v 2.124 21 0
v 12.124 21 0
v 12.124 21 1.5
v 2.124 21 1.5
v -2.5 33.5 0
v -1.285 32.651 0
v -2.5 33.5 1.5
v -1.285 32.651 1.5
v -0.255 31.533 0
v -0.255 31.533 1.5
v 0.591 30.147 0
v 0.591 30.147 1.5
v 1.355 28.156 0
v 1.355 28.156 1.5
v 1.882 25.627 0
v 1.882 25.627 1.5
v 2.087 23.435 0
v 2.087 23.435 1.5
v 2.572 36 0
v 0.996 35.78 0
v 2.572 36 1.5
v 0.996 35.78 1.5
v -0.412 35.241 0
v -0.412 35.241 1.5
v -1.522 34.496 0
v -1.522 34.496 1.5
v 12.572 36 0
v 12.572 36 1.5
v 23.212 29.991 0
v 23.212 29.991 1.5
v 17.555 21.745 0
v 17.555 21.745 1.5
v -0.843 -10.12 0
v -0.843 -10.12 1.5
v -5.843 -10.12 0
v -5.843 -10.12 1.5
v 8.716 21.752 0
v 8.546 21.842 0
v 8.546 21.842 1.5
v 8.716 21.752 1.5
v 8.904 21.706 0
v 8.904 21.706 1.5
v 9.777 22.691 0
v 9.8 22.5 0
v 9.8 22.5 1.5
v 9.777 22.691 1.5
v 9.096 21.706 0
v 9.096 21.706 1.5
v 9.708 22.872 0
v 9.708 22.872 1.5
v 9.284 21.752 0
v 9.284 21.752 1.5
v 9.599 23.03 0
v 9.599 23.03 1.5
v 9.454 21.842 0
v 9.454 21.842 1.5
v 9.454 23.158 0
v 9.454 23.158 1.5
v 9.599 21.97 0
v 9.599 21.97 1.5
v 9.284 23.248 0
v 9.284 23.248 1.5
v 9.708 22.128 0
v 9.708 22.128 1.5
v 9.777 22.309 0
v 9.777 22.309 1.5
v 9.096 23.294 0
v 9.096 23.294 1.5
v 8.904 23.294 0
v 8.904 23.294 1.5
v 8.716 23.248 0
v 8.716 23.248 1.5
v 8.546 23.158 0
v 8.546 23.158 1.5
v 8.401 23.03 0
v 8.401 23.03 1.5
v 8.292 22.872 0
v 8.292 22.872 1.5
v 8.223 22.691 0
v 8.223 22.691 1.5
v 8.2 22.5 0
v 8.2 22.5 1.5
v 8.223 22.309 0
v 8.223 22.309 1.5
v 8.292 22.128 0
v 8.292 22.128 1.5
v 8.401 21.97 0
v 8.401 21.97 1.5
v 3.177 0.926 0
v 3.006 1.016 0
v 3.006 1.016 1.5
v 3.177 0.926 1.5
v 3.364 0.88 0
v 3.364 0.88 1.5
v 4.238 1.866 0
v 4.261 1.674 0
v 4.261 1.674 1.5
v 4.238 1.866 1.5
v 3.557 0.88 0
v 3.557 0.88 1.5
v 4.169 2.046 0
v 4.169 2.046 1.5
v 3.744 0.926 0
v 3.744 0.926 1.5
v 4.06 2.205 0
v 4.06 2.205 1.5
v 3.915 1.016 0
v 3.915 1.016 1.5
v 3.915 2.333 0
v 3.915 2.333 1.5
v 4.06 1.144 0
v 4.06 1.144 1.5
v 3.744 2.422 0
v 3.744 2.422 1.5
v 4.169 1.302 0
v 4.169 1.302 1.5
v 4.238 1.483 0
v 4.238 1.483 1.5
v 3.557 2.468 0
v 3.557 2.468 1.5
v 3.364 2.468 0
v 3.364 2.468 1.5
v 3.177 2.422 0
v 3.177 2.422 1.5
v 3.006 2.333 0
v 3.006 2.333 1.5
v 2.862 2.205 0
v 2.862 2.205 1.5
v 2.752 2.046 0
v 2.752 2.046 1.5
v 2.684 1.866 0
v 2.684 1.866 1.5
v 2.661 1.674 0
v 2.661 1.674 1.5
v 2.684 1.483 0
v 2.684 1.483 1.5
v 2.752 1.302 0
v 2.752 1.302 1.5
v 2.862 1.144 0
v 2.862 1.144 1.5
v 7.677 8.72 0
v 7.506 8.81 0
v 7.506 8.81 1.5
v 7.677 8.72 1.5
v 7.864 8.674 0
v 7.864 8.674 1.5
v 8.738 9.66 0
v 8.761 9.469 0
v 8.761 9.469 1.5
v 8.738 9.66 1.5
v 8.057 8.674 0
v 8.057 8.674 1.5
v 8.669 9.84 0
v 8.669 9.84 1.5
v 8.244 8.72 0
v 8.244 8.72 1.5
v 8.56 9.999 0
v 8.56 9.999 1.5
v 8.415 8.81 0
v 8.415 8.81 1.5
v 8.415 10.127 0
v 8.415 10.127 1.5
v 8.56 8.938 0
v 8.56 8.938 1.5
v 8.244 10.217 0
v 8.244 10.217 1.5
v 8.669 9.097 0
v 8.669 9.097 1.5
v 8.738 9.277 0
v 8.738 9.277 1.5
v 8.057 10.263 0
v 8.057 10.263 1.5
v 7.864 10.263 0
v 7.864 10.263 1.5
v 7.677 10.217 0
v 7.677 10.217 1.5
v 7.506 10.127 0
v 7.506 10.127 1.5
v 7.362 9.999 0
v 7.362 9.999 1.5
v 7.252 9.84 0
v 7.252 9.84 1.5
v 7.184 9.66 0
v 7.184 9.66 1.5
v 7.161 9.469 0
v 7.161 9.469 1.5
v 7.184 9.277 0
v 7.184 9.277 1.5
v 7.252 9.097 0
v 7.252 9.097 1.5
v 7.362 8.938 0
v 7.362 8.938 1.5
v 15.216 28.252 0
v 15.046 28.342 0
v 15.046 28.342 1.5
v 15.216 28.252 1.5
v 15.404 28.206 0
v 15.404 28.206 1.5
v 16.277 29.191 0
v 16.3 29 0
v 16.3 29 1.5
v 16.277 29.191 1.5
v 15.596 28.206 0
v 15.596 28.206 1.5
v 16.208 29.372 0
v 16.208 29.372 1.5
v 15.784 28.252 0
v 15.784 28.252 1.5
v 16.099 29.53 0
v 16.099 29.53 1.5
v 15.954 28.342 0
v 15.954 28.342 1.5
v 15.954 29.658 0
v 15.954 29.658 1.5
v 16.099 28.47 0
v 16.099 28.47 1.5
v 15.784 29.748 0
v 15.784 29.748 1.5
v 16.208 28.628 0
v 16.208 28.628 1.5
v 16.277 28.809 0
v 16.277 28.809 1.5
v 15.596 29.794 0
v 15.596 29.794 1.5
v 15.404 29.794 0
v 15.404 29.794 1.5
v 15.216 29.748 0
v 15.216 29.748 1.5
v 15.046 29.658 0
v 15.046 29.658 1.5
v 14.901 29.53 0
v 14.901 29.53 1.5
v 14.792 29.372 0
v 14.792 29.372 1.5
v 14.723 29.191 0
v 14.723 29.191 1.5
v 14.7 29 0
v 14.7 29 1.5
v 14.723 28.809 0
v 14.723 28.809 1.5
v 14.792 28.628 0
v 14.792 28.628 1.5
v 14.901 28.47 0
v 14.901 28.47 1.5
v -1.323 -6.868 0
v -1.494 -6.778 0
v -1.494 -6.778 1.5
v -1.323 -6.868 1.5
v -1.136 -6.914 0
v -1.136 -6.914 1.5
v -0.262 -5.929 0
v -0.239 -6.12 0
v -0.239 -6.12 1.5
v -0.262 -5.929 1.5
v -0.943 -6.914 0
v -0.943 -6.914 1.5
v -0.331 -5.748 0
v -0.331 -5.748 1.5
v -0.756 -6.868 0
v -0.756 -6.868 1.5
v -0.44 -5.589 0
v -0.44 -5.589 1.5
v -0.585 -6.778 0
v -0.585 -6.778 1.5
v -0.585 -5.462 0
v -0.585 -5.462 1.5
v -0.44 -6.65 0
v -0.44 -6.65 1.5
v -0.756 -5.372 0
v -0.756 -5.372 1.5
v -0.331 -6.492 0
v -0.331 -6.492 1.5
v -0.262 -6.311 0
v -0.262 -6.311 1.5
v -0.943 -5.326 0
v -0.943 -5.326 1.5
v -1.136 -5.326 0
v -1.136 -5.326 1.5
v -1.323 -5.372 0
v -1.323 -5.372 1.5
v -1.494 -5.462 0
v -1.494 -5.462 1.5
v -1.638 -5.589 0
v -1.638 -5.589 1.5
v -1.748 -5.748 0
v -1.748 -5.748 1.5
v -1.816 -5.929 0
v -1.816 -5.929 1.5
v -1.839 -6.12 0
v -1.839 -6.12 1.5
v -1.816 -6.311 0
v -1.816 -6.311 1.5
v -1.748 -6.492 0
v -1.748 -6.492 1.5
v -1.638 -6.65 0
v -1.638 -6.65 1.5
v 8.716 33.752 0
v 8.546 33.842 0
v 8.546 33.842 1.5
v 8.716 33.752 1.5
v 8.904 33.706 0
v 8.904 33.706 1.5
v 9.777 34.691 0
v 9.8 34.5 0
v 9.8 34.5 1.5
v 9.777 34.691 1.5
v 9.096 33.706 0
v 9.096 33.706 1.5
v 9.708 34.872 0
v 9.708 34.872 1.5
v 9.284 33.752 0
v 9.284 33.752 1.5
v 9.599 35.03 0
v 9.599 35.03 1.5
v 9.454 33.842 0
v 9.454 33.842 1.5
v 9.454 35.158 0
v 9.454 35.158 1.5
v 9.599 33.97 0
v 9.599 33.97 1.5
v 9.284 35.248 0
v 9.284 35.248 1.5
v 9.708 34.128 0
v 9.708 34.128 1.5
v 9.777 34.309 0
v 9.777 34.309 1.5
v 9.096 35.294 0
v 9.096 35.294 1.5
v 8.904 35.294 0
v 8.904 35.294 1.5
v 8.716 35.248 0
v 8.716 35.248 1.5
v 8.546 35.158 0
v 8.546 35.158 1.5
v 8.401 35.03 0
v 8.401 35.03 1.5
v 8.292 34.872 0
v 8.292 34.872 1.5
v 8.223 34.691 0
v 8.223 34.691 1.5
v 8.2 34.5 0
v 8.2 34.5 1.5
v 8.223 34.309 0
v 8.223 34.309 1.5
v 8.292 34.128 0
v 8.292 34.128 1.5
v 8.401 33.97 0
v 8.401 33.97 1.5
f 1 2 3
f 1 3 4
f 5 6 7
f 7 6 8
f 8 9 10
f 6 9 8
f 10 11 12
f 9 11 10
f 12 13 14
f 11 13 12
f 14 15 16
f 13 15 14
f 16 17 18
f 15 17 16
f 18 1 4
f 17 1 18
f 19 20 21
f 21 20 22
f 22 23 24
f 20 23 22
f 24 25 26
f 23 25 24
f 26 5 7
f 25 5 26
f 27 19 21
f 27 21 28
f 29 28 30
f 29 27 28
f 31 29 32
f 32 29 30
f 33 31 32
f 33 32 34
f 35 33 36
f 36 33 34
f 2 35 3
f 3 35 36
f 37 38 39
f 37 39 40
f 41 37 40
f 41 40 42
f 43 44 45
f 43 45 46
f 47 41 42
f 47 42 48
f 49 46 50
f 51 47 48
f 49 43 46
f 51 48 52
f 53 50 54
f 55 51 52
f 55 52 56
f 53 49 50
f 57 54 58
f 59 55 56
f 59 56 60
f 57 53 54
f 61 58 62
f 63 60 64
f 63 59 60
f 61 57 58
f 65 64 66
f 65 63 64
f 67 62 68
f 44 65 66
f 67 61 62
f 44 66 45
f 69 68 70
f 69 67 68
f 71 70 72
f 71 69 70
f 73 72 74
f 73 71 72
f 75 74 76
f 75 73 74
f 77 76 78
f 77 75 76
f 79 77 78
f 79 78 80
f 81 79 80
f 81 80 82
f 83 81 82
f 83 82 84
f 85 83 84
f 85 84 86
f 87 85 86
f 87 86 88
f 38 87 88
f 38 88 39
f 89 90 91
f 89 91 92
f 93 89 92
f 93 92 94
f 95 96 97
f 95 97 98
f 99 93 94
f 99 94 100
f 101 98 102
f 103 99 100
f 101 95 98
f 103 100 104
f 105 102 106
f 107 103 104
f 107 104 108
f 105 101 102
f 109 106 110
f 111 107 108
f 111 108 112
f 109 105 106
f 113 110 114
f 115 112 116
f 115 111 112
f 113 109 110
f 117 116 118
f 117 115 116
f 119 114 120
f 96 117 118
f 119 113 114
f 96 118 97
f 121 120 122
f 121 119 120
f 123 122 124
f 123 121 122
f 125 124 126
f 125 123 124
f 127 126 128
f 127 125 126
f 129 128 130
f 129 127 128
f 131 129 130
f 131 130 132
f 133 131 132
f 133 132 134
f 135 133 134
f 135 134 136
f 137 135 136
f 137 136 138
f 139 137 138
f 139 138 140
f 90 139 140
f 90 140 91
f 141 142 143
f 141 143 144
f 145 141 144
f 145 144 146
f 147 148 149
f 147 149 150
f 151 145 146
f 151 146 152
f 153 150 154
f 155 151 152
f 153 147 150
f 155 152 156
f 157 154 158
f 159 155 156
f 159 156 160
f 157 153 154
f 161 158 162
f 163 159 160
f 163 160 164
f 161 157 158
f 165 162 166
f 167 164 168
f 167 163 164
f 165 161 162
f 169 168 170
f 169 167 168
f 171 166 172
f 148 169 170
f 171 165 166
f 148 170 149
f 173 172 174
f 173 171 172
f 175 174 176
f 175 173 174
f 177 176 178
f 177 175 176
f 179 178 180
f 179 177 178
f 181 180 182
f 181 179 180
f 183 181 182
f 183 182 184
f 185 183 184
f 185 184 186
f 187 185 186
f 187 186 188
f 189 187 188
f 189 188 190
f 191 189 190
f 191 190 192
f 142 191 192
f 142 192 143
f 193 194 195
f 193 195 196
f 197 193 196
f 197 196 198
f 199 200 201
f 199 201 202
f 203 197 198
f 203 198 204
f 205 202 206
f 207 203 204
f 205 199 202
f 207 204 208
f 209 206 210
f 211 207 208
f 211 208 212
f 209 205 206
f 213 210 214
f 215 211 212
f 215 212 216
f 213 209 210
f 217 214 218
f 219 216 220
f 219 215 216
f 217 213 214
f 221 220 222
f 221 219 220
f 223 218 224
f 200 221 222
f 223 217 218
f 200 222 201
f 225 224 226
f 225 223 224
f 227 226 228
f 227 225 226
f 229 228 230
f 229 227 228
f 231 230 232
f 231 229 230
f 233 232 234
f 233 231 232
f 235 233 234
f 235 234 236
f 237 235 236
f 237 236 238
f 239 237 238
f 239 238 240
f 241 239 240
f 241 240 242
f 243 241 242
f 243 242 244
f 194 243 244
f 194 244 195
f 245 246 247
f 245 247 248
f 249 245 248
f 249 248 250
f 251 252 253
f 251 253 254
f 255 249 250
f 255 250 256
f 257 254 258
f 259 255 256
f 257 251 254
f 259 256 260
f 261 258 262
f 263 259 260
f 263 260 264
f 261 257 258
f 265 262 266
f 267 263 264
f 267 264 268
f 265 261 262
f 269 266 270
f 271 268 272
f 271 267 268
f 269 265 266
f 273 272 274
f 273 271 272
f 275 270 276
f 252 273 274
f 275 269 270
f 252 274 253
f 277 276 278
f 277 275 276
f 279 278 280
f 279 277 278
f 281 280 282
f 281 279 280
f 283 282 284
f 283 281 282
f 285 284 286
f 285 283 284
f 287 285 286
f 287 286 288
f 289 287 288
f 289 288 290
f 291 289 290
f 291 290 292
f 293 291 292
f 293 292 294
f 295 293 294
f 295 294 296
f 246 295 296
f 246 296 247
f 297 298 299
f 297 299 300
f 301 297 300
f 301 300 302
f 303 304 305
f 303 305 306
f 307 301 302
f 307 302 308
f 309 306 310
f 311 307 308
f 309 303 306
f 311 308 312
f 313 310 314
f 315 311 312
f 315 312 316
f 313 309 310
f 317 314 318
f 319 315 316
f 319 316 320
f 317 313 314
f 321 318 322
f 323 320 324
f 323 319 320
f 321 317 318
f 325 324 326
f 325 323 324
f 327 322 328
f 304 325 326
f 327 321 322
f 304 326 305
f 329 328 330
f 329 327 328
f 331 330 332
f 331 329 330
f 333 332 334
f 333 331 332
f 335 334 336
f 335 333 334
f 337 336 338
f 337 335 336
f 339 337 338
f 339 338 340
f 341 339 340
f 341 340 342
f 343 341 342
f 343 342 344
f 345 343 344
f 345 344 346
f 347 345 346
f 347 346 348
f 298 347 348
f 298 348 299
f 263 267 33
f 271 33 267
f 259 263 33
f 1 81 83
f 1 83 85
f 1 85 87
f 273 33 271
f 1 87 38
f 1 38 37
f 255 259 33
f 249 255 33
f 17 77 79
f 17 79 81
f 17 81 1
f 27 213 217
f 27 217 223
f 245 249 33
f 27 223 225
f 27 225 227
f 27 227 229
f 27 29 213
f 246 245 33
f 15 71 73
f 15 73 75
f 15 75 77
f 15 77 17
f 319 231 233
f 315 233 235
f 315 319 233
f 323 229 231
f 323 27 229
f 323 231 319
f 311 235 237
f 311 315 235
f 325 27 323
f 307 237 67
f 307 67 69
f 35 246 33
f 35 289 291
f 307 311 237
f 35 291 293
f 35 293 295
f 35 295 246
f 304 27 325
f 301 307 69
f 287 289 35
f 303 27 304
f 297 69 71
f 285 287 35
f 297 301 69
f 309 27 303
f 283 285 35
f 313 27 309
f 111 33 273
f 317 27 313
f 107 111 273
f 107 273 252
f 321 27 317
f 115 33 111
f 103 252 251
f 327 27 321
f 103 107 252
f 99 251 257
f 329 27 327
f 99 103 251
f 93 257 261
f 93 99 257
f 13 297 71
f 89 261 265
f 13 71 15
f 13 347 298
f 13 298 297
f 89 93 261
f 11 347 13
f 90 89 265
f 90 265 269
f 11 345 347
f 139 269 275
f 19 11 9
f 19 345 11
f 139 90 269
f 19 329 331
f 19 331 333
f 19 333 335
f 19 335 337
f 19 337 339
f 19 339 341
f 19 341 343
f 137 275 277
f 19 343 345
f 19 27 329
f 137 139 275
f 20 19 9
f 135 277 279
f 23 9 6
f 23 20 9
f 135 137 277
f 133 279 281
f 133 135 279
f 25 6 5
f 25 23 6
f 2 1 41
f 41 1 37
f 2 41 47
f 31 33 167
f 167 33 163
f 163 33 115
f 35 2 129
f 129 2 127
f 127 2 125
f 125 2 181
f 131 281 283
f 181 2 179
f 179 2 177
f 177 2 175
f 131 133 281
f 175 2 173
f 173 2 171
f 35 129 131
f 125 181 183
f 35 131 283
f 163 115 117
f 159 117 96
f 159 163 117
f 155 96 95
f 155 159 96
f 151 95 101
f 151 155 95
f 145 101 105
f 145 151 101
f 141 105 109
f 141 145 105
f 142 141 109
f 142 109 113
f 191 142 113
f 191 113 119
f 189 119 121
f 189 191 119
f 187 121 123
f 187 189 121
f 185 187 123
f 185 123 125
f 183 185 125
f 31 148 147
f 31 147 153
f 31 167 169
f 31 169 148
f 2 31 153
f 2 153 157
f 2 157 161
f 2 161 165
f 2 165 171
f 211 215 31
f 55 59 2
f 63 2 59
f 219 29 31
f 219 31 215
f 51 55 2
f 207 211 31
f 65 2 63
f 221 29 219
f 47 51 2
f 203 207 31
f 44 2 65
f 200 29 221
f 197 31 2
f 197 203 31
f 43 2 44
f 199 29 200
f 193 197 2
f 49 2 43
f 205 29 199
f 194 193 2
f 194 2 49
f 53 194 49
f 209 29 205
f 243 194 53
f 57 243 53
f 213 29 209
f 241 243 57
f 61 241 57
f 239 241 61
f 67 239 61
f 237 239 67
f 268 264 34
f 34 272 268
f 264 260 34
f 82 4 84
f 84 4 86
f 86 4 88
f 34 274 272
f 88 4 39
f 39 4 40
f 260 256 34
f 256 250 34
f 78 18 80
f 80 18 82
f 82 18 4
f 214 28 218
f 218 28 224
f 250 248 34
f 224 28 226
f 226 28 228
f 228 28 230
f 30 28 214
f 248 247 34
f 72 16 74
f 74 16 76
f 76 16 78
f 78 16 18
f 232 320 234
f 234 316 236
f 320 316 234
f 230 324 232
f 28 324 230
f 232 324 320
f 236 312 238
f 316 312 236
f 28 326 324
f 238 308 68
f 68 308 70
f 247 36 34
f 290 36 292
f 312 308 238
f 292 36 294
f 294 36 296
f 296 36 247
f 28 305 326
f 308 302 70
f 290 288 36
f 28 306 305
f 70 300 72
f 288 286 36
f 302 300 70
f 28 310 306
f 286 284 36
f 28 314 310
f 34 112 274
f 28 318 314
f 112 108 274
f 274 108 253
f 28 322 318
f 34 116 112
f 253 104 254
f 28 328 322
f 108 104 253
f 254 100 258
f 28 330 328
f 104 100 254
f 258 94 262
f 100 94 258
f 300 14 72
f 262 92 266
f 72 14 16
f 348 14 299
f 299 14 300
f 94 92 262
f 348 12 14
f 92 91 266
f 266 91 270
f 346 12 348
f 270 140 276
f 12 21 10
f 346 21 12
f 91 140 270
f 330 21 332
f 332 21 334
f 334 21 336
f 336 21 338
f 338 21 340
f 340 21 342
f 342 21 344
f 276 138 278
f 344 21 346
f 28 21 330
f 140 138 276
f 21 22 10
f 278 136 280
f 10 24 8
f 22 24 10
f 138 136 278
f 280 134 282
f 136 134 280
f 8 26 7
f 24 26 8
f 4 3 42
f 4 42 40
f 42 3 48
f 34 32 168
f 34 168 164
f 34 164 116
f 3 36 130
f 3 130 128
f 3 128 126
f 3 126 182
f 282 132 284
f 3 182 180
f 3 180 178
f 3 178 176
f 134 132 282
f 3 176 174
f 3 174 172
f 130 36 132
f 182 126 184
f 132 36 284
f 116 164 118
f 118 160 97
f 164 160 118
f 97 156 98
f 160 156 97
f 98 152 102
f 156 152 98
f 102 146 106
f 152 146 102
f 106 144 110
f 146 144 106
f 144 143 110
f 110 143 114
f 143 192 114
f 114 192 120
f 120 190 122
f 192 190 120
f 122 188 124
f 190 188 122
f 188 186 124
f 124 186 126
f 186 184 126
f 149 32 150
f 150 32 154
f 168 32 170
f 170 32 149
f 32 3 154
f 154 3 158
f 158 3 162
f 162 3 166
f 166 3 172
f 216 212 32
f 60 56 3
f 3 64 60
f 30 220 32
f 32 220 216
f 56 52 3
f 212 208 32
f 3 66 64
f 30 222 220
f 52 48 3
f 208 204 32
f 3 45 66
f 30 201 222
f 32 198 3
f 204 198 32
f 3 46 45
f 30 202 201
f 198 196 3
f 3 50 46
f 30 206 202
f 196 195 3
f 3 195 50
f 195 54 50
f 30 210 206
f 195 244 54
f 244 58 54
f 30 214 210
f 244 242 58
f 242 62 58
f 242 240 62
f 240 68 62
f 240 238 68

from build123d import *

# Parameters (mm, degrees)
SKETCH_R  = 0.8
PAD_DEPTH = 1.5


with BuildPart() as part:
    # Sketch → Pad (new body)
    with BuildSketch(Plane.XY):
        with BuildLine():
            Line((12.124356, 21), (2.124356, 21))
            add(Edge.make_bspline(
                [(-2.5, 33.5), (2.301311, 30.873257), (2.124356, 21)],
                knots=[0, 0, 0, 1, 1, 1], degree=2))
            add(Edge.make_bspline(
                [(2.572068, 36), (-0.563366, 35.88435), (-2.5, 33.5)],
                knots=[0, 0, 0, 1, 1, 1], degree=2))
            Line((2.572068, 36), (12.572068, 36))
            Line((12.572068, 36), (23.212256, 29.991259))
            Line((23.212256, 29.991259), (17.554762, 21.745486))
            Line((17.554762, 21.745486), (-0.84276, -10.119957))
            Line((-0.84276, -10.119957), (-5.84276, -10.119957))
            Line((-5.84276, -10.119957), (12.124356, 21))
        make_face()
        with Locations((9, 22.5)):
            Circle(SKETCH_R, mode=Mode.SUBTRACT)
        with Locations((9, 34.5)):
            Circle(SKETCH_R, mode=Mode.SUBTRACT)
        with Locations((15.5, 29)):
            Circle(SKETCH_R, mode=Mode.SUBTRACT)
        with Locations((-1.039206, -6.119957)):
            Circle(SKETCH_R, mode=Mode.SUBTRACT)
        with Locations((7.960794, 9.4685)):
            Circle(SKETCH_R, mode=Mode.SUBTRACT)
        with Locations((3.460794, 1.674271)):
            Circle(SKETCH_R, mode=Mode.SUBTRACT)
    extrude(amount=PAD_DEPTH)


solid = part.part
